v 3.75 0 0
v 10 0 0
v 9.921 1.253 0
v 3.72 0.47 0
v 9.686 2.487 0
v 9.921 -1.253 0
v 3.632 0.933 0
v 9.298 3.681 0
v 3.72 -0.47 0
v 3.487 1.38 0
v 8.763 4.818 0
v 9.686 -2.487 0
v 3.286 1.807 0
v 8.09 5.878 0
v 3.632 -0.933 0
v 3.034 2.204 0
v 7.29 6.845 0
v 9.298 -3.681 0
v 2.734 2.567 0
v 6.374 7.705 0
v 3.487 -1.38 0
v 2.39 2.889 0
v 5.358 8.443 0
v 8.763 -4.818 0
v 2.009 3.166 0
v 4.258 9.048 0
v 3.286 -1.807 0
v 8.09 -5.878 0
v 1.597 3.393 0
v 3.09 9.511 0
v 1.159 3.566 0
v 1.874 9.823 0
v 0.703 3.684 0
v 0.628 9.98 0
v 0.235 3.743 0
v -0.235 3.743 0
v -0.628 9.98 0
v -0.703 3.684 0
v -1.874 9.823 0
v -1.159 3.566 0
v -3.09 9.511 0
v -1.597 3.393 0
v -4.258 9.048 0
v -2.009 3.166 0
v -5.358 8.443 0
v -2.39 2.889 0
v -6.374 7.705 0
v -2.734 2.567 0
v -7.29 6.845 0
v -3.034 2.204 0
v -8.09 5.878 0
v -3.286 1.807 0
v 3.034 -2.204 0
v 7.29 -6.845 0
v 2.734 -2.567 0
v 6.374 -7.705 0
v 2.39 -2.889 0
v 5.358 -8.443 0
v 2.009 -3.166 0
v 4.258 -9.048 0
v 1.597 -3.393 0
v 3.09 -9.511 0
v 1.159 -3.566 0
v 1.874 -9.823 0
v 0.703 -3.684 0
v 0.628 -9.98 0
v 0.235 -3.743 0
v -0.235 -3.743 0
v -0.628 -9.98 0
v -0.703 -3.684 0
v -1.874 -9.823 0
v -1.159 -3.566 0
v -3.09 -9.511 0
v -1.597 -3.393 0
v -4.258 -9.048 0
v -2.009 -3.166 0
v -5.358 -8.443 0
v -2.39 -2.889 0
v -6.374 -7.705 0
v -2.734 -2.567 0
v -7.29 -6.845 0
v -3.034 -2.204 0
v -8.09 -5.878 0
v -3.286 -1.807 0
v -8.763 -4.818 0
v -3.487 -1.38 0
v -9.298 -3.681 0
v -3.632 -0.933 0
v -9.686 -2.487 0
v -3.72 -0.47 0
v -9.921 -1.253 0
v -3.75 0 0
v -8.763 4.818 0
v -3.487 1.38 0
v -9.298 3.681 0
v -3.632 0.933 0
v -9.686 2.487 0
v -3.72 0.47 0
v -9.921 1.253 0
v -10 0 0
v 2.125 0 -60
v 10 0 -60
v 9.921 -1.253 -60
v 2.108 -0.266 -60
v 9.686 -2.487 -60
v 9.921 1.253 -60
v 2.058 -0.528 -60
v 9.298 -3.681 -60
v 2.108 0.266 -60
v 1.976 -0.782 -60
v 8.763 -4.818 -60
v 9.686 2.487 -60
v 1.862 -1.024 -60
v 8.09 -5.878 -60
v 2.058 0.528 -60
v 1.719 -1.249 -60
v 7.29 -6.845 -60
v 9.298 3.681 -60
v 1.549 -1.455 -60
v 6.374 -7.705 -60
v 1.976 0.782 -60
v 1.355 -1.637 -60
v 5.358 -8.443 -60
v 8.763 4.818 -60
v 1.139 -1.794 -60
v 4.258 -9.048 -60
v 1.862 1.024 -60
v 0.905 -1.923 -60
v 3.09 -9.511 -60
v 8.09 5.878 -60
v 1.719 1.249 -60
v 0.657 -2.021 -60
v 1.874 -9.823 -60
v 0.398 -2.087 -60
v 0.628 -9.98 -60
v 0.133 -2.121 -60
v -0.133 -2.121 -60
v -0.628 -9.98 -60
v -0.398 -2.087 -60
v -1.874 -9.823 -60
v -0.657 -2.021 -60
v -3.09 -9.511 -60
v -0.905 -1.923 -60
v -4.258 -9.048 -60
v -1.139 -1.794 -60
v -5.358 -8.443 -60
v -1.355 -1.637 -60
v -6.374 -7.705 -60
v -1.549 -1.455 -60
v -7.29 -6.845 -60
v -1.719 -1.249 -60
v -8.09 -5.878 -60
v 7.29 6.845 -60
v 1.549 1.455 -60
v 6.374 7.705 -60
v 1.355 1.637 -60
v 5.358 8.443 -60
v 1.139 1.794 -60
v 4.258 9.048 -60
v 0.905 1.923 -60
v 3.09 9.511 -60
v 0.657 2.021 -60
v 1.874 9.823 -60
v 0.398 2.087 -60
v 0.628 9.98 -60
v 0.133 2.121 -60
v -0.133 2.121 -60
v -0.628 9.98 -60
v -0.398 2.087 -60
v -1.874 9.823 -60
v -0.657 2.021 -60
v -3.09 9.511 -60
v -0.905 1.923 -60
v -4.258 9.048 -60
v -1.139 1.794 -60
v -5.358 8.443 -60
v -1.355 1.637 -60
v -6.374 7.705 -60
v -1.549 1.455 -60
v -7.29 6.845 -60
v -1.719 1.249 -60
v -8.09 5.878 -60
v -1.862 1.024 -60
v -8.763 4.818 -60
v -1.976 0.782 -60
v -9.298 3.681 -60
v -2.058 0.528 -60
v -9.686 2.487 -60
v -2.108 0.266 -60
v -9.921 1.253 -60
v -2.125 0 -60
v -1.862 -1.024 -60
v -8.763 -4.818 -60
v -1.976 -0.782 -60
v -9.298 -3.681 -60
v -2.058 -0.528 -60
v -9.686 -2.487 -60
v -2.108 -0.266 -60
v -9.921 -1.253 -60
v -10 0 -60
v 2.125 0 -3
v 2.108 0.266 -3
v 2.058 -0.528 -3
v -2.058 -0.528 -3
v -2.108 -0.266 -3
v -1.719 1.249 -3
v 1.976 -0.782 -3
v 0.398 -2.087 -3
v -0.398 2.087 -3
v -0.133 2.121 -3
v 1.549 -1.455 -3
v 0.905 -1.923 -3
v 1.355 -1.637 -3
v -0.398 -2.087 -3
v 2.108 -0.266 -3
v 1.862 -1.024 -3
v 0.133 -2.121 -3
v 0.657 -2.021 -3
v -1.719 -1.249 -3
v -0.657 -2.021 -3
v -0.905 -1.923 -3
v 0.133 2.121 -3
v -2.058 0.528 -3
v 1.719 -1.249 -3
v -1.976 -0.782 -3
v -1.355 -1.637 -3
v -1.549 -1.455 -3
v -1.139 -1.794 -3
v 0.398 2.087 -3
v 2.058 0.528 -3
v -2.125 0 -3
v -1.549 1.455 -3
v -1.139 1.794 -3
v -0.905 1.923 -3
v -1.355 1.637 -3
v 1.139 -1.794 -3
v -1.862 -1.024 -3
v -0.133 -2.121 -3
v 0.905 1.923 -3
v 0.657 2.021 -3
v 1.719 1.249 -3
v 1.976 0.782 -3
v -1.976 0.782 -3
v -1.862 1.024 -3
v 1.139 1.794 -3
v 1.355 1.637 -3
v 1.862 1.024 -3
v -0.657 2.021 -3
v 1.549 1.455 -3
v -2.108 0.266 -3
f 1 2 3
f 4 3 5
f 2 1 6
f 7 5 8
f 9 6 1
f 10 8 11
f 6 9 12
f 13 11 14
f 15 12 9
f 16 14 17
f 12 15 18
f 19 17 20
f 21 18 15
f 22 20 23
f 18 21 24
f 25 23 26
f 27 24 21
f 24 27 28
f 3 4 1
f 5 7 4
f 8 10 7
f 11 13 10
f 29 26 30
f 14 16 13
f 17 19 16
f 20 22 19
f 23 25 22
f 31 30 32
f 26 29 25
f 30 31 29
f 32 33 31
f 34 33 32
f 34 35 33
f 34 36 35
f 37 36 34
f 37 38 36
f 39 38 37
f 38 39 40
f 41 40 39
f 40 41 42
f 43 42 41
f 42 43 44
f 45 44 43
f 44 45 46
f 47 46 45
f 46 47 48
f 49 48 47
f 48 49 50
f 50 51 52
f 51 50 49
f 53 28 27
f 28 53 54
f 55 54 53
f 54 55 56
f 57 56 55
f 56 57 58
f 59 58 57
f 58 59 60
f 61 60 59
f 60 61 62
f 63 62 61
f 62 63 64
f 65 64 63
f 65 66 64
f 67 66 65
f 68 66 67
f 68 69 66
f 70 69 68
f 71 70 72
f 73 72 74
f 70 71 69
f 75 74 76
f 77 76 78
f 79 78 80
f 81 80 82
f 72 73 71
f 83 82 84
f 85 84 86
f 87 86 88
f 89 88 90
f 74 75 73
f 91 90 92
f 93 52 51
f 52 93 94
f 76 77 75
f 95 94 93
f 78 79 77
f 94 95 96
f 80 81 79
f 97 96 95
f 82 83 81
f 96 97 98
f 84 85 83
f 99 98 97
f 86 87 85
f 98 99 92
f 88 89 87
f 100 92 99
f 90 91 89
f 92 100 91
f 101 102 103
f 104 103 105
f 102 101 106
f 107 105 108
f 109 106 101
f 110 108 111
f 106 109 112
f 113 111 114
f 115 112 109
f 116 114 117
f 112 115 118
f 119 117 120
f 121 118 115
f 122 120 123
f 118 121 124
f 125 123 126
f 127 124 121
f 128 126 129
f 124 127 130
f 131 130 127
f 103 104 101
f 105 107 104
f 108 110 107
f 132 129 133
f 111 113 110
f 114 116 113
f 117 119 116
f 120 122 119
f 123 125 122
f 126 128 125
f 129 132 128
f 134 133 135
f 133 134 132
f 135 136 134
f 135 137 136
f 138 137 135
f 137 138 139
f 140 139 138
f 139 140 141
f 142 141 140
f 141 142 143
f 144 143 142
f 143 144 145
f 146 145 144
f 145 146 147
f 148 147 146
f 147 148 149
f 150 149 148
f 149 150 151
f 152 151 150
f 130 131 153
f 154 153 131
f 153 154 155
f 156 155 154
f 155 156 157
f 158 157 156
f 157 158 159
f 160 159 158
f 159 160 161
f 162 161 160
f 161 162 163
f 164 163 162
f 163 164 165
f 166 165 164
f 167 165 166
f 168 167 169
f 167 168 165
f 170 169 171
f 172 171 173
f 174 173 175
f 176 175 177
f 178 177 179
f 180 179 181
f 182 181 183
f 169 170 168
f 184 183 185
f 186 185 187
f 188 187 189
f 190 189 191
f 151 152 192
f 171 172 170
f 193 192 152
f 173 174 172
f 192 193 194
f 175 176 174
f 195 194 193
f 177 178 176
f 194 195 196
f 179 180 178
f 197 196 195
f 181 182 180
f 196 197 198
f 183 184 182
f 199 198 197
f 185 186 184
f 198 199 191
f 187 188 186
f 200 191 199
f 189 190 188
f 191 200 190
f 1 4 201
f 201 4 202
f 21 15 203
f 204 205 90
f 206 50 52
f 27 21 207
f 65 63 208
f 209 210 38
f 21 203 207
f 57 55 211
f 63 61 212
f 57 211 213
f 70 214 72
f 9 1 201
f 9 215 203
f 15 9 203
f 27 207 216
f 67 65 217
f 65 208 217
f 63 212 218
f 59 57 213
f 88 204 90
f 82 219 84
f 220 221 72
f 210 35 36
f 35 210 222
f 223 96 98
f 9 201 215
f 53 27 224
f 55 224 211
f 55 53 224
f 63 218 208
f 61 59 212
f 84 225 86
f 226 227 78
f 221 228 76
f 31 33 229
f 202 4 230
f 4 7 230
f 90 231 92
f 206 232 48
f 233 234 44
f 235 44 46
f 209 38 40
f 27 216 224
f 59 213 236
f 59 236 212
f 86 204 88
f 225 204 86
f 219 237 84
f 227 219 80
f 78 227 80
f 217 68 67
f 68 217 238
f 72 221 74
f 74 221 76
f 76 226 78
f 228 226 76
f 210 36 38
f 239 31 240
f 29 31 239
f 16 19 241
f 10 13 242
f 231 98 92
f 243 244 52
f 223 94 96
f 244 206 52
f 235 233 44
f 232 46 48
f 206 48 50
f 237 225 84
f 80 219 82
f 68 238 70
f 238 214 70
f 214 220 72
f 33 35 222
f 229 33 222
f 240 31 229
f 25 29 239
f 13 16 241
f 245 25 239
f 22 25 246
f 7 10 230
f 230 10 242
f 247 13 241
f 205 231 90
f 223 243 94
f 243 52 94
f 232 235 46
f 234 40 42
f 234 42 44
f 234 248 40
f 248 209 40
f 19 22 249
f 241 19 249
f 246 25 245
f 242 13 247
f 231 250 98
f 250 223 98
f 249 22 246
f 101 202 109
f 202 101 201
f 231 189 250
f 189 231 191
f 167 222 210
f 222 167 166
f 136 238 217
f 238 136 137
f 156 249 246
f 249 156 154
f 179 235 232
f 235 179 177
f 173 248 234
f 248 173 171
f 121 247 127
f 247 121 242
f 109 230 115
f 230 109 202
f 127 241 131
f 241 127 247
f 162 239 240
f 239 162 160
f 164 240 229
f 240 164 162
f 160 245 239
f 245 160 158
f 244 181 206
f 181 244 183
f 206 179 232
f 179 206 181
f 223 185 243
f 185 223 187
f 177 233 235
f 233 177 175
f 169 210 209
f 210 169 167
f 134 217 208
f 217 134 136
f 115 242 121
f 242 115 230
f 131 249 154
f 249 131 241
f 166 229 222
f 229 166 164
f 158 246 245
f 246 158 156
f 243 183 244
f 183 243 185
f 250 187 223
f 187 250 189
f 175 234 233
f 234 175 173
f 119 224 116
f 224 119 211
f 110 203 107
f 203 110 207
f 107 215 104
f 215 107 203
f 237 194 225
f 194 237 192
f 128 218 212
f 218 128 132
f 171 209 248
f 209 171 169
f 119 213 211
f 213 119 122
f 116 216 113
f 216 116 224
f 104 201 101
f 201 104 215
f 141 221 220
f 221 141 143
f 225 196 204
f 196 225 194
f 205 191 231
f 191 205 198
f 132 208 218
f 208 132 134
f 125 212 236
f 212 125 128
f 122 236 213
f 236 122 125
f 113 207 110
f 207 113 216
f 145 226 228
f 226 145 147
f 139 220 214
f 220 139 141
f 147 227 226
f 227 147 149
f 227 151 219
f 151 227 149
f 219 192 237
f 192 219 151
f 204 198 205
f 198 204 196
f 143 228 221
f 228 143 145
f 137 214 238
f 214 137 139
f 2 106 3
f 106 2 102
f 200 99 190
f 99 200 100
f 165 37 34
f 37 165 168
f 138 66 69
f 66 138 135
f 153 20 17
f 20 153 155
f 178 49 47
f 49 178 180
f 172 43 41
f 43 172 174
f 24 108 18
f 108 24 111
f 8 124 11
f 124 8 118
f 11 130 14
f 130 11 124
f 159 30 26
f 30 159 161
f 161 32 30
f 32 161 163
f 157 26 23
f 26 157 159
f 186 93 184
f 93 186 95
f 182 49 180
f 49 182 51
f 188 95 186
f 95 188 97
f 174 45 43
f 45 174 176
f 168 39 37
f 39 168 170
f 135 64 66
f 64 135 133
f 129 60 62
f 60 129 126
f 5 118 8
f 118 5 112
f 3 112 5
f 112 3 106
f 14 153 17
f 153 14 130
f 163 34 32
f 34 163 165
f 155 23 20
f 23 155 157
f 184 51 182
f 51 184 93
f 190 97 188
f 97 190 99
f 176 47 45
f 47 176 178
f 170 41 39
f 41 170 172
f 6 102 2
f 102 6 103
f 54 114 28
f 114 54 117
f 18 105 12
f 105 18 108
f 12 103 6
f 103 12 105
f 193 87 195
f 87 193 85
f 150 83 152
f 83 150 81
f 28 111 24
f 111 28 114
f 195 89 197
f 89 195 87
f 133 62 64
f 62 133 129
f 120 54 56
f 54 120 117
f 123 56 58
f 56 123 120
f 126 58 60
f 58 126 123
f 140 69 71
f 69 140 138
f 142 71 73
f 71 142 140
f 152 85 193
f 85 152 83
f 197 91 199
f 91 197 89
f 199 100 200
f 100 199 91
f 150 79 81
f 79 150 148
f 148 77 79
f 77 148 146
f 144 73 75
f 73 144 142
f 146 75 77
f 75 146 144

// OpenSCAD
$fn = 50;


difference() {
	union() {
		translate(v = [0, 0, -60.0000000000]) {
			cylinder(h = 60, r = 10.0000000000);
		}
		cylinder(h = 0, r = 20.0000000000);
	}
	union() {
		translate(v = [0, 0, 0]) {
			rotate(a = [0, 0, 0]) {
				difference() {
					union() {
						#translate(v = [0, 0, -60.0000000000]) {
							cylinder(h = 60, r = 2.0000000000);
						}
						#translate(v = [0, 0, -3]) {
							cylinder(h = 3, r = 10.0000000000, r1 = 2.1250000000, r2 = 3.7500000000);
						}
						#translate(v = [0, 0, -60.0000000000]) {
							cylinder(h = 60, r = 2.1250000000);
						}
						#translate(v = [0, 0, -60.0000000000]) {
							cylinder(h = 60, r = 2.0000000000);
						}
					}
					union();
				}
			}
		}
	}
}
